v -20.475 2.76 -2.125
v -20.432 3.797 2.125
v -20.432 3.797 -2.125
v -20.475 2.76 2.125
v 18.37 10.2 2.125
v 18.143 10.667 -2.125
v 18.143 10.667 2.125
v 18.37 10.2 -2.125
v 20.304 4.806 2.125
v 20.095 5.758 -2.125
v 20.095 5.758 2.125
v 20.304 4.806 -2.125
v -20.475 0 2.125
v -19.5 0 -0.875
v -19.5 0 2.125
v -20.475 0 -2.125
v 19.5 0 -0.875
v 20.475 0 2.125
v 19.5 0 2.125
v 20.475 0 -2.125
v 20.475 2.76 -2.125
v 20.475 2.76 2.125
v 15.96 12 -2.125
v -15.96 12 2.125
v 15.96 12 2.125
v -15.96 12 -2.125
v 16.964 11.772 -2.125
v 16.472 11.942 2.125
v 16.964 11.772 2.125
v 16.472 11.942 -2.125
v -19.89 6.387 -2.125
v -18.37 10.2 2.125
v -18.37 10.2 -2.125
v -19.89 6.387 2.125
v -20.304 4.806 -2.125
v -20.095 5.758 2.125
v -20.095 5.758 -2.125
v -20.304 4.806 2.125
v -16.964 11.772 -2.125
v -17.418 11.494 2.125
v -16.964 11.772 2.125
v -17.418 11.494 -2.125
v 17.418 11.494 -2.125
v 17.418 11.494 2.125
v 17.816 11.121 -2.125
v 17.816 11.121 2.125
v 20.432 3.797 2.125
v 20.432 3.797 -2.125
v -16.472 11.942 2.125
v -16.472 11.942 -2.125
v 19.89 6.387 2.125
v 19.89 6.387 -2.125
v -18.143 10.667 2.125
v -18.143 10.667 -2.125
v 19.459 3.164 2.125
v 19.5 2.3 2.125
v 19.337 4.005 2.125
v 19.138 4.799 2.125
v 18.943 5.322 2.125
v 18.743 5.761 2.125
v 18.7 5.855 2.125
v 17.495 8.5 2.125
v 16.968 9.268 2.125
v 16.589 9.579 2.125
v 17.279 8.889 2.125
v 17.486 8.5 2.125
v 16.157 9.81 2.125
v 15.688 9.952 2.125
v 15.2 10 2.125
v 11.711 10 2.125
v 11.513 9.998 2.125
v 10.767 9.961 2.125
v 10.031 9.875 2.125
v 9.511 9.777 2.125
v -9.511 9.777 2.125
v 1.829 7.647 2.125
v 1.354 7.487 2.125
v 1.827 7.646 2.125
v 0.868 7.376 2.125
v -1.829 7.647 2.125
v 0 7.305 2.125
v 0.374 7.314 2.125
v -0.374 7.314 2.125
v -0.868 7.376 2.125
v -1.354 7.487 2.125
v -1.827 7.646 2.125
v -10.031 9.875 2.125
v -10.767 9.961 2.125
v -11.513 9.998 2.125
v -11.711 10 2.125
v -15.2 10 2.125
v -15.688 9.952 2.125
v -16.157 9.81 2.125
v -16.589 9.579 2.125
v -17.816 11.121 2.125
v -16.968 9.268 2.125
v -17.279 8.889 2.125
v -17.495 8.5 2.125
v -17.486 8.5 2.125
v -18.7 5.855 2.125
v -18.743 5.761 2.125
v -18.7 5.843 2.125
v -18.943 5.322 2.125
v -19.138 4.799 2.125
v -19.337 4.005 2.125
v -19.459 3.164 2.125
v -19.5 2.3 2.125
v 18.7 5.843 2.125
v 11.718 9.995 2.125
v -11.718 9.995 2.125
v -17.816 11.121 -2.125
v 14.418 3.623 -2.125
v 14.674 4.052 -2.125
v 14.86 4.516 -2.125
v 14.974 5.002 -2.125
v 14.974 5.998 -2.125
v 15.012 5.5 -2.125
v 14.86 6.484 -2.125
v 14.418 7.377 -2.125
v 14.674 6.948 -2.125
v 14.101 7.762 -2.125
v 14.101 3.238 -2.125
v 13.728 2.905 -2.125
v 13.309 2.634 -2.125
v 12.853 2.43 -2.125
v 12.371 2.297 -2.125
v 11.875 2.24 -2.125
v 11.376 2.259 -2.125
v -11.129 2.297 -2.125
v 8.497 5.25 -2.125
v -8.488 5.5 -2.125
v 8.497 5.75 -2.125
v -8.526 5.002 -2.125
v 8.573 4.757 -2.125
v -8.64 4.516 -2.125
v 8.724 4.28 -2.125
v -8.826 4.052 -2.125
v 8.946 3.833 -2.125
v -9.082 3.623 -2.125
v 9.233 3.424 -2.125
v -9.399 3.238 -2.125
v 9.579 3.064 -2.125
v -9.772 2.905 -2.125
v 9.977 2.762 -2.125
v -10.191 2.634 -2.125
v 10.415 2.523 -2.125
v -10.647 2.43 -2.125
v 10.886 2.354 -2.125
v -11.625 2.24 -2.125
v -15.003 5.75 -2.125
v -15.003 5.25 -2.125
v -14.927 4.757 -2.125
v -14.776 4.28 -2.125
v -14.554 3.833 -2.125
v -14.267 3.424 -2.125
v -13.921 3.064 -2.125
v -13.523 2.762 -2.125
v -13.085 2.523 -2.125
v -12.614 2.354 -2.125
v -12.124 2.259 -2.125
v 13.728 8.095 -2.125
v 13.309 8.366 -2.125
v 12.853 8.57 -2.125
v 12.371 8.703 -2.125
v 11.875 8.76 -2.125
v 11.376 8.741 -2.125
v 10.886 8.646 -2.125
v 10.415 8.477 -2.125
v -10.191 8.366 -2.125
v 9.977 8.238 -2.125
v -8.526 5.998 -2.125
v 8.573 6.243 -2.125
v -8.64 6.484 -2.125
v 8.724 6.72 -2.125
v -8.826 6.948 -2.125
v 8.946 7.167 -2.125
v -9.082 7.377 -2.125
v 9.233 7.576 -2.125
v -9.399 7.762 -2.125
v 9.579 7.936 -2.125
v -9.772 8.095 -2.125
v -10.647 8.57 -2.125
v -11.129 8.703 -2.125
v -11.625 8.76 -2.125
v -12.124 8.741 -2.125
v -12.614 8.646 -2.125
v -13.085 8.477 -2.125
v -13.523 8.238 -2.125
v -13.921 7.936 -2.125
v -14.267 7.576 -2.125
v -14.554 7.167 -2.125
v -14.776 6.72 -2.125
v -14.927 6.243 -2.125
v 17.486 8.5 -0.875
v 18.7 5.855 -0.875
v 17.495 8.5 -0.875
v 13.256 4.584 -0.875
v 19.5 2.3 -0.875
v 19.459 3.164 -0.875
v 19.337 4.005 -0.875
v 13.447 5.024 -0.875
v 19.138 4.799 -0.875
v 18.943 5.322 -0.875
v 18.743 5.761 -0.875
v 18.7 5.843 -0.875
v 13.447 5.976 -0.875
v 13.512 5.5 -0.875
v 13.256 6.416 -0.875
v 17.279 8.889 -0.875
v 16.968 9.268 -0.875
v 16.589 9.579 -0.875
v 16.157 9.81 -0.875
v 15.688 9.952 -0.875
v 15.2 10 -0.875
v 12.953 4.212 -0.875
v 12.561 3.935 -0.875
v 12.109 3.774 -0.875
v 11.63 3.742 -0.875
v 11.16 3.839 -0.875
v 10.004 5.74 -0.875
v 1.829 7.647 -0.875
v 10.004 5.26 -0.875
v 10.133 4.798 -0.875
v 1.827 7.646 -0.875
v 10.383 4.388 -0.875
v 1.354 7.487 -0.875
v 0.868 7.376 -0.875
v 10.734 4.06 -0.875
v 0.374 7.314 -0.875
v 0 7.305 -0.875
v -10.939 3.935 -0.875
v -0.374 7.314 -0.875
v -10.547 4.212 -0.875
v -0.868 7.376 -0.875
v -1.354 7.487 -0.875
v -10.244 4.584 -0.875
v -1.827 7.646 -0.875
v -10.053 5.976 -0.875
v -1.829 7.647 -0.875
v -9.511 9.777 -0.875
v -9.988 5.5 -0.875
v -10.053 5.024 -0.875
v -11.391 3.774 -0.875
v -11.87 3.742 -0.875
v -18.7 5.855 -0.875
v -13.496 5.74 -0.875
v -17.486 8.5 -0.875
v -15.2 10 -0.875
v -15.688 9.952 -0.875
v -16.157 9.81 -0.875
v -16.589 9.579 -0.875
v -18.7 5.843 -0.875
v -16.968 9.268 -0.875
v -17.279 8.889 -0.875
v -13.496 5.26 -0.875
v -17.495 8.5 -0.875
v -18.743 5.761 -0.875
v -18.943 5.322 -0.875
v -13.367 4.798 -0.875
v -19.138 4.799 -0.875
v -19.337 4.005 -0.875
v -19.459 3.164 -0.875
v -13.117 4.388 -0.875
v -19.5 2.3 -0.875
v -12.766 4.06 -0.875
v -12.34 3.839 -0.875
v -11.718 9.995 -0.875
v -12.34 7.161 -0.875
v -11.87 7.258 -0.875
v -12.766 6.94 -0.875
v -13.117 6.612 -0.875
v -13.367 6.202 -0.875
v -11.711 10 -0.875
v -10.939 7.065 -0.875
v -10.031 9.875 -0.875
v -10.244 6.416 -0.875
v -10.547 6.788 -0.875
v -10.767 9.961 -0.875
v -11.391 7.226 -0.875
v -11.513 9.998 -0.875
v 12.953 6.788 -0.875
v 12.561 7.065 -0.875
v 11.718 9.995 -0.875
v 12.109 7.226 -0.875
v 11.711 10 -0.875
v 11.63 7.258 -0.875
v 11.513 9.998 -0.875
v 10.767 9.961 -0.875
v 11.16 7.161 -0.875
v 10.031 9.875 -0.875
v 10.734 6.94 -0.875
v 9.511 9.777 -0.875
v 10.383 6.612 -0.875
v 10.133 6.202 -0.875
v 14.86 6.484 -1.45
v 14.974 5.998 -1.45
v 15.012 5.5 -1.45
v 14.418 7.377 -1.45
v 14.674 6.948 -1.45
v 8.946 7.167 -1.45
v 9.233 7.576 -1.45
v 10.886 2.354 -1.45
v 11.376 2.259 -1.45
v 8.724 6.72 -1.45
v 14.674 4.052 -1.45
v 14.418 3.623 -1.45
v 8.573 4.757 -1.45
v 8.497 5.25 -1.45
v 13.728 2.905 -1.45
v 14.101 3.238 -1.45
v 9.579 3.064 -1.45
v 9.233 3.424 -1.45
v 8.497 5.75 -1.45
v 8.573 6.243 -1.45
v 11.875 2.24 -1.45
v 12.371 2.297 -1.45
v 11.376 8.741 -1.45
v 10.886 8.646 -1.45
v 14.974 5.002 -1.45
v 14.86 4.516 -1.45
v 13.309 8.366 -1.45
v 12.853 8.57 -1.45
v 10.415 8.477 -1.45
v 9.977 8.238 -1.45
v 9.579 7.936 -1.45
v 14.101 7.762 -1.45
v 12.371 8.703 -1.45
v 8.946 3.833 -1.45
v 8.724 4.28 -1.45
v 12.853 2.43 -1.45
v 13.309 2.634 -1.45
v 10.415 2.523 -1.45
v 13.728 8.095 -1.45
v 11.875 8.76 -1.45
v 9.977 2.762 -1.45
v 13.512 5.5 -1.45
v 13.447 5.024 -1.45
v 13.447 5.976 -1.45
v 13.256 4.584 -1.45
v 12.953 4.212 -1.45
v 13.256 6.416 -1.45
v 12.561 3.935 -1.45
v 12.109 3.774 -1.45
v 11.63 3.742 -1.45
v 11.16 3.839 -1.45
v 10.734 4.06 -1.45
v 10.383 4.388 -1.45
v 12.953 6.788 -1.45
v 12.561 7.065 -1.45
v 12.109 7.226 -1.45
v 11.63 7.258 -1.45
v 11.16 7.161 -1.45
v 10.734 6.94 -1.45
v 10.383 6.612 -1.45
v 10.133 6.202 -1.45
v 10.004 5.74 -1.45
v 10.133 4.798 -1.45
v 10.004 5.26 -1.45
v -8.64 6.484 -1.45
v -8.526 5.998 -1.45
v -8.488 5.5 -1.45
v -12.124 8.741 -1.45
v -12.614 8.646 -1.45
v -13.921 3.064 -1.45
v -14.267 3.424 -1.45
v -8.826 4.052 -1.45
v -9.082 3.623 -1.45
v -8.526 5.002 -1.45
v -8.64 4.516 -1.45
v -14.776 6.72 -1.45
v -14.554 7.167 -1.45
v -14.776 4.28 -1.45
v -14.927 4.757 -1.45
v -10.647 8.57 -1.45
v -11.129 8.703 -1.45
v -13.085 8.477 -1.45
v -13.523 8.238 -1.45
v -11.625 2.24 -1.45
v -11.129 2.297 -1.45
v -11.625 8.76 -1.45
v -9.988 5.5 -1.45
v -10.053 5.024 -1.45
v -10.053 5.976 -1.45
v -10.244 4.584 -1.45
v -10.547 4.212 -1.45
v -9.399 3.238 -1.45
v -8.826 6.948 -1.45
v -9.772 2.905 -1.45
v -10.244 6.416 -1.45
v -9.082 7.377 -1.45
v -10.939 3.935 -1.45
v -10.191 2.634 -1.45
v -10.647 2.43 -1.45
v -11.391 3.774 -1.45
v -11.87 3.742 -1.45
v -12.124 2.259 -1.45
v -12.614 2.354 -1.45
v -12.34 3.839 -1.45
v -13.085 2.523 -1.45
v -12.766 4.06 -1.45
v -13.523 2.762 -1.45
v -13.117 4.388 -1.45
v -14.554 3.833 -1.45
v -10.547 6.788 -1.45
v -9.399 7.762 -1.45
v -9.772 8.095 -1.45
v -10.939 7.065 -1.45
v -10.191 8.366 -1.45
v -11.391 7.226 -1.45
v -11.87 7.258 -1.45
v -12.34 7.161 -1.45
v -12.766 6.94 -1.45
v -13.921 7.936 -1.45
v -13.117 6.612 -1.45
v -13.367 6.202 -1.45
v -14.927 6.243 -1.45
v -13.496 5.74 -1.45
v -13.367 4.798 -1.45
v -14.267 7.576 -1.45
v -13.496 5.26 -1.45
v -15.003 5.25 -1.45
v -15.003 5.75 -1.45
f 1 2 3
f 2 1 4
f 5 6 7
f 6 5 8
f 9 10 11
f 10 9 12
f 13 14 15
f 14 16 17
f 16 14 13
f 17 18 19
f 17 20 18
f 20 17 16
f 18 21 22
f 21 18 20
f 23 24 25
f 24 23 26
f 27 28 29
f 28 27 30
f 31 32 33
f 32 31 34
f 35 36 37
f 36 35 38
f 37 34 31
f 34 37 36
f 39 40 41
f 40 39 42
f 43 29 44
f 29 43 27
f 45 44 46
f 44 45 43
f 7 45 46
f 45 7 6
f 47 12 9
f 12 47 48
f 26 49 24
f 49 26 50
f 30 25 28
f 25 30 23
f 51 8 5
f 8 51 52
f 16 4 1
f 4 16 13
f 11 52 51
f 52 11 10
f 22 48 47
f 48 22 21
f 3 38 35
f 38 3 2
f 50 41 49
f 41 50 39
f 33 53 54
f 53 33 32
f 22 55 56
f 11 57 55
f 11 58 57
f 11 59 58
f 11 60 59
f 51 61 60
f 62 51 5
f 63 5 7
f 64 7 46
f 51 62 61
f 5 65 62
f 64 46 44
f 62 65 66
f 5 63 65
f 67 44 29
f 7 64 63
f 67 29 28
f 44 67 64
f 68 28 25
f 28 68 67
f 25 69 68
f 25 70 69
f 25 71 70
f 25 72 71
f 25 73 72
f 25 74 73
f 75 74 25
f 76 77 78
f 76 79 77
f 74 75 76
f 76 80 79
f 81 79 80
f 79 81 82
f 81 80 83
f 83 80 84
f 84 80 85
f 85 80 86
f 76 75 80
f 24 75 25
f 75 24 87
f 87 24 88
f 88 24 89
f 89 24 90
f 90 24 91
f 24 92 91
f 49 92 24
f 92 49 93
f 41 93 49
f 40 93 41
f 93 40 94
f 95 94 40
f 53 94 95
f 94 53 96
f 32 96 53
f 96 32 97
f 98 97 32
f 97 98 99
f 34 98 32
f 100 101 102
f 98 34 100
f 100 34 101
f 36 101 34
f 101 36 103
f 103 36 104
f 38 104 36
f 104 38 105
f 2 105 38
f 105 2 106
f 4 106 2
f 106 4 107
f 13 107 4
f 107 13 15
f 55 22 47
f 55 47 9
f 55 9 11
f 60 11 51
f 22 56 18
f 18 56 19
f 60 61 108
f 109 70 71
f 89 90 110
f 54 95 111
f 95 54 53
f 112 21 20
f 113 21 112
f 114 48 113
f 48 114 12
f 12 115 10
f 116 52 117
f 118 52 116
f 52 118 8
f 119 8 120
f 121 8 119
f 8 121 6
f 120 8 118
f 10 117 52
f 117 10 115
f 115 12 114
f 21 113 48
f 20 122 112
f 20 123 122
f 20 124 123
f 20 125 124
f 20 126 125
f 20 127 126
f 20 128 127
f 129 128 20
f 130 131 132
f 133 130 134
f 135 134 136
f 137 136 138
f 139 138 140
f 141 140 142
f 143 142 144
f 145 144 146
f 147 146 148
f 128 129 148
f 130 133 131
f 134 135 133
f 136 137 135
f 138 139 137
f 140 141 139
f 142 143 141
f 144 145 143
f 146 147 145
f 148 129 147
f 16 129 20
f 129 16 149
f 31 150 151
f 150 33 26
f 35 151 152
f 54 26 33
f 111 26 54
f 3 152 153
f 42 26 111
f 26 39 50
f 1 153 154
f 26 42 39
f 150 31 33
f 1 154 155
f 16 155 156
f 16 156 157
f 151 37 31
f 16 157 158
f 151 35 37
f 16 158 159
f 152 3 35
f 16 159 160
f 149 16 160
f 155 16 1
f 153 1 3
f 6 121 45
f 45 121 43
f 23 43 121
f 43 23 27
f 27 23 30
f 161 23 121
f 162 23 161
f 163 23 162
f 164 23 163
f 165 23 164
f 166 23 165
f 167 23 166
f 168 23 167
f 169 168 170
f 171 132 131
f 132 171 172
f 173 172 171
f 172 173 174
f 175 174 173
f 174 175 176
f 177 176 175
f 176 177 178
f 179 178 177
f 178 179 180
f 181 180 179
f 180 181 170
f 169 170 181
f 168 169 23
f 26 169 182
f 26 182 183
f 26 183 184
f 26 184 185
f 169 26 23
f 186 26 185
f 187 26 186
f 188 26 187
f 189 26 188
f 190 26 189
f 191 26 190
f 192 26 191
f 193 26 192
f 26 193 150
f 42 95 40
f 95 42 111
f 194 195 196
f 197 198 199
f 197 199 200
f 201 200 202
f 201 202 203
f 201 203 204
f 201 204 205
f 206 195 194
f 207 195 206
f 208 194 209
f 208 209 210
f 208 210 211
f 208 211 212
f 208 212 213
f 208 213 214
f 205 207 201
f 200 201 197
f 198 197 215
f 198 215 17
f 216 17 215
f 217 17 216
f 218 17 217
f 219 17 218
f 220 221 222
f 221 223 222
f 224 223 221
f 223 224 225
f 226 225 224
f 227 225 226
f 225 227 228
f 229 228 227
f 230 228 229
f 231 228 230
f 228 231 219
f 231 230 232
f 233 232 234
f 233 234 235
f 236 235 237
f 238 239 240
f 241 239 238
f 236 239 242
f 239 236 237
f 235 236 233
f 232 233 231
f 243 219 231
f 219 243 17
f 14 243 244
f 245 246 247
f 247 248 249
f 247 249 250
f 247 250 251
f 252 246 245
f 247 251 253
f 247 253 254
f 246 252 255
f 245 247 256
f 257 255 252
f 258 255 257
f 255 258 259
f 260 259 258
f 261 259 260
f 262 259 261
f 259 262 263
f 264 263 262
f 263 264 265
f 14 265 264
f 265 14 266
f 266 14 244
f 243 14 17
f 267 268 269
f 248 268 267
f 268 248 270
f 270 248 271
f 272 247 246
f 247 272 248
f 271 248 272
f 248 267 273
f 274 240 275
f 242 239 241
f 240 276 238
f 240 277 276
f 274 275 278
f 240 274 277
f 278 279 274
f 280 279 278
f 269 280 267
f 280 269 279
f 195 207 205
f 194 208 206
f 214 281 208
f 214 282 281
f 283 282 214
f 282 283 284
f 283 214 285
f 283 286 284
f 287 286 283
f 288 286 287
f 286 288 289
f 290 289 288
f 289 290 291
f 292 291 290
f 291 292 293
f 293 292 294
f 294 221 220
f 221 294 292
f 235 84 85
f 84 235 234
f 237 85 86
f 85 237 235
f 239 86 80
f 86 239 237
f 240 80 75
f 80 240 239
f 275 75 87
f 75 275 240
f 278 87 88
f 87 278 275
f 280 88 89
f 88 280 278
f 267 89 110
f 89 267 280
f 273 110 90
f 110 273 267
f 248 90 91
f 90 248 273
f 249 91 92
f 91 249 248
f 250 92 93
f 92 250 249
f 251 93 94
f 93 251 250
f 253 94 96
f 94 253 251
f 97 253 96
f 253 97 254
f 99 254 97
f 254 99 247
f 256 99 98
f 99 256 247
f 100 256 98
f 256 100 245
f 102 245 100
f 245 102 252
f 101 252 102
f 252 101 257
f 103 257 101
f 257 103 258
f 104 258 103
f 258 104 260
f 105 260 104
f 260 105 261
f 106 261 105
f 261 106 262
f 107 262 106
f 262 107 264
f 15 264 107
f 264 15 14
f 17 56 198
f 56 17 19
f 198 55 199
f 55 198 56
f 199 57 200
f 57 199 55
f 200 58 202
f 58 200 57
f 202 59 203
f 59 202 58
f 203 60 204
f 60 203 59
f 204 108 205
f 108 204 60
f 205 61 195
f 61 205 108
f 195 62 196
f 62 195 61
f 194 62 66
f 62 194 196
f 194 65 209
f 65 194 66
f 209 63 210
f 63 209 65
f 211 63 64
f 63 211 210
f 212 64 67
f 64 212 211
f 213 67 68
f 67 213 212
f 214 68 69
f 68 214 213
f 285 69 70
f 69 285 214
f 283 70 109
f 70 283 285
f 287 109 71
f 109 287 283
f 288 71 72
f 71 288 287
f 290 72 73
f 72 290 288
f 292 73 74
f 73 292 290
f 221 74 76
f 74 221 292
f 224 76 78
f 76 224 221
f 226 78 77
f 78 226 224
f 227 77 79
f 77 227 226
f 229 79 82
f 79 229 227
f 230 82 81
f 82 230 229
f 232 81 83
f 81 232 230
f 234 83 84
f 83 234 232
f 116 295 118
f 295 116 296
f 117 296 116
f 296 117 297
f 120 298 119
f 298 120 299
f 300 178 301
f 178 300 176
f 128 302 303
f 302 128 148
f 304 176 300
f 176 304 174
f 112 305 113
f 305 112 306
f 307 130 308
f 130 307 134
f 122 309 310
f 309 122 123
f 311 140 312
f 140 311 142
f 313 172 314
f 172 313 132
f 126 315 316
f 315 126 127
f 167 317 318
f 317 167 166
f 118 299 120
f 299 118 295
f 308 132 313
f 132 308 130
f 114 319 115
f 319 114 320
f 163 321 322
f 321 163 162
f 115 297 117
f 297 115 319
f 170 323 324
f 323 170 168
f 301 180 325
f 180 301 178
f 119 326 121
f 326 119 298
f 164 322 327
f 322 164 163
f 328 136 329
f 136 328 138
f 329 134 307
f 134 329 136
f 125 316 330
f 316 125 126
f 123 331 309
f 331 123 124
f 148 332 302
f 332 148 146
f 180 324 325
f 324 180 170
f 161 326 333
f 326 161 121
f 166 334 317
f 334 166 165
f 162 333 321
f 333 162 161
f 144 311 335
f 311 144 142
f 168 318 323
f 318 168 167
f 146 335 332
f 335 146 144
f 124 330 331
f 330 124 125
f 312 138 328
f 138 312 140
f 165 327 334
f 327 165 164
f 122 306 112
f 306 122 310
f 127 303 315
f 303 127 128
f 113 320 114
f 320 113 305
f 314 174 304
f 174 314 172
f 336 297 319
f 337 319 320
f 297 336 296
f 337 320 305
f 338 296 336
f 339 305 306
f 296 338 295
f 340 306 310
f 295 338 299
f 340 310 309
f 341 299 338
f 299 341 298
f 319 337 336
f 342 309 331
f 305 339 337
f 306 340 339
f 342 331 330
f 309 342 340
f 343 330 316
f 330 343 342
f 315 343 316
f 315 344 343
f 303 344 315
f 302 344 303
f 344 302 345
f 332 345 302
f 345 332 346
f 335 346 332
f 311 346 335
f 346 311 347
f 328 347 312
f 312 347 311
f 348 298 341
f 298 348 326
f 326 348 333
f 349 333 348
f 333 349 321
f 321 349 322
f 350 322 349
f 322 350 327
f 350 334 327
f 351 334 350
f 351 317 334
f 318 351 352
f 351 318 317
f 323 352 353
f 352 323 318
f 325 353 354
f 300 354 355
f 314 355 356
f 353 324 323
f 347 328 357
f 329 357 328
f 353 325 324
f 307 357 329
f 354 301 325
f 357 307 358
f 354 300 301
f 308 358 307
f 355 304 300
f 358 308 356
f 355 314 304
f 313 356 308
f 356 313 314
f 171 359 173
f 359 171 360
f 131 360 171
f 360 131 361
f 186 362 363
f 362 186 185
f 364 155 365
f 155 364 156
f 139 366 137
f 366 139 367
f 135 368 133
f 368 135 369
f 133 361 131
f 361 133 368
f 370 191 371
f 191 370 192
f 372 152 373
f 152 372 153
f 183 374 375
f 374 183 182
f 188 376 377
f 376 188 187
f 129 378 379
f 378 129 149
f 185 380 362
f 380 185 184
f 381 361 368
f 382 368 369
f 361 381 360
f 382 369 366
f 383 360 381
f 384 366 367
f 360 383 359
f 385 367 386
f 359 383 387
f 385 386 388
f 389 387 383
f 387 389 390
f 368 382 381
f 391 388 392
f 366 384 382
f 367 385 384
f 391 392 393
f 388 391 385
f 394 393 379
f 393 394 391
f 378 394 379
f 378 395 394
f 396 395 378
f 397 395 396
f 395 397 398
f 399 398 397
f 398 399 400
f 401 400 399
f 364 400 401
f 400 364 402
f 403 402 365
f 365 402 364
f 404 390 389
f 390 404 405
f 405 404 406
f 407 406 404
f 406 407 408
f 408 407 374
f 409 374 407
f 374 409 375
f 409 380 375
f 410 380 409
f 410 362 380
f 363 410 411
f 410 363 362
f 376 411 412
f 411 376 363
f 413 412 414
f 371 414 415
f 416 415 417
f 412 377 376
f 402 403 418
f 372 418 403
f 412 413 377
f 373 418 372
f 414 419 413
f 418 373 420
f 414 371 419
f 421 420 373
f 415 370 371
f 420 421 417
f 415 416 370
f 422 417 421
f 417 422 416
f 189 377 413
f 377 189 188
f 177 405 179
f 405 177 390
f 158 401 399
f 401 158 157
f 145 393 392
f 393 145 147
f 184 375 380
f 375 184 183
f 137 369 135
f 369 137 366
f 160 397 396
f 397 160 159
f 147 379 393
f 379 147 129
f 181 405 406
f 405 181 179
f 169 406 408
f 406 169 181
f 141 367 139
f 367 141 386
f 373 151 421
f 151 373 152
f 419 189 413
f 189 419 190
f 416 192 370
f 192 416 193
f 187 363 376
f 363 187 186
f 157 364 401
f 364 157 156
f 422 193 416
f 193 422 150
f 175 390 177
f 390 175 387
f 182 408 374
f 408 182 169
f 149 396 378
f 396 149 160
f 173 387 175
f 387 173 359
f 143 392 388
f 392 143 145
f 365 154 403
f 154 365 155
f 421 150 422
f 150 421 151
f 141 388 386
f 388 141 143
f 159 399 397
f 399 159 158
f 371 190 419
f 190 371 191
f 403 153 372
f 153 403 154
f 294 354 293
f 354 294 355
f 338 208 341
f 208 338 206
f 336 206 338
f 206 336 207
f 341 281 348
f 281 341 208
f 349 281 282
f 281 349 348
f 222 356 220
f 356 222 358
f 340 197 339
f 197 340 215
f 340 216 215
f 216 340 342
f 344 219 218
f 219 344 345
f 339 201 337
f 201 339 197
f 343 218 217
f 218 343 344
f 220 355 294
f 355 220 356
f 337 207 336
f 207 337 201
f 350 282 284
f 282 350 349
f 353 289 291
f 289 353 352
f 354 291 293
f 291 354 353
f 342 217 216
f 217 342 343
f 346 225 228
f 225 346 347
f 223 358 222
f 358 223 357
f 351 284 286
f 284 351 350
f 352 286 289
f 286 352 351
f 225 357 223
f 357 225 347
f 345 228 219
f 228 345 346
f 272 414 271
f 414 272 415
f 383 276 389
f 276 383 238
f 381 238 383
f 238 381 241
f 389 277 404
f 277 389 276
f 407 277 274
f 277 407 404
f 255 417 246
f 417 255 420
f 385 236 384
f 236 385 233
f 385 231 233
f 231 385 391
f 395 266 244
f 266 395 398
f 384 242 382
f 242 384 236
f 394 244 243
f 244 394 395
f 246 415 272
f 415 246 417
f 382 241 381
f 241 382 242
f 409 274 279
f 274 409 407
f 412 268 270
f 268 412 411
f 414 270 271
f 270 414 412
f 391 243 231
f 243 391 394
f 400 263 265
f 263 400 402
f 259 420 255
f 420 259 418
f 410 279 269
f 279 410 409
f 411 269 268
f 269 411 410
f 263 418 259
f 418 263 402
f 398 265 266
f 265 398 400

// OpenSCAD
// file: base_chin.scad
standoff_width = 6;
screw_hole_width = 3;
plate_thickness = 2.5;
chin_thickness = 2.5;
 
$fs = $preview ? 1 : 0.5;
$fa = $preview ? 10 : 5;

anti_warp = .15;
filament_width = 1.75;

function anti_warp_widen(v) = v + (filament_width * anti_warp) * 2;
function anti_warp_shrink(v) = v - (filament_width * anti_warp) * 2;

module base_model() {
	difference() {
		square([19.5, 12]);
		translate([0, 2]) {
			translate([0, 10.3]) circle(d = 10);
			translate([1.3, 5.5]) rotate([0, 0, 15.5]) square([15, 10]);
			translate([0, 8]) square([20, 5]);
			translate([19.5, 2.1]) rotate([0, 0, 90 - 65.5]) square([5, 10]);
			translate([15.2, 5.5]) {
				difference() {
					translate([0, 1]) square([2.5, 2]);
					circle(d = 5);
				}
			}
			translate([11.7, 3]) {
				difference() {
					rotate([0, 0, 53]) square([4, 5]);
					scale([1.5, 1]) circle(d = 10);
				}
			}
			translate([16.5, 0.3]) {
				scale([1, 1.75]) difference() {
					translate([2.2, 0]) square([3, 3]);
					circle(d = 6);
				}
			}
		}
	}
}

module standoff_hole(height) {
	assert(height > 0);
	cylinder(h = height, d = anti_warp_widen(standoff_width), center = true);
}

module screwholepos(mirror = false, offset = 0) {
	translate([mirror ? -11.75 - offset : 11.75 + offset, 5.5])
		children();
}

module standoffs(height) {
	assert(height > 0);
	screwholepos() standoff_hole(height);
	screwholepos(true) standoff_hole(height);
}

module model(height) {
	assert(height > 0);
	linear_extrude(height, center = true) {
		base_model();
		mirror([1, 0]) base_model();
	}
}
// main file
include <base_chin.scad>

module chin() {
	difference() {
		hull() scale([1.05, 1.2]) model(plate_thickness + chin_thickness / 2 + 0.5);
		translate([0, 0, chin_thickness / 4]) model(plate_thickness + 0.5);
	}
}

module screw_hole(height) {
	cylinder(h = height, d = anti_warp_widen(screw_hole_width));
}

module screw_holes(height) {
	screwholepos() screw_hole(height);
	screwholepos(true) screw_hole(height);
}

module main() {
	difference() {
		chin();
		translate([0, 0, -chin_thickness - 0.2]) {
			standoffs(chin_thickness);
			screw_holes(chin_thickness);
		}
	}
}

main();
